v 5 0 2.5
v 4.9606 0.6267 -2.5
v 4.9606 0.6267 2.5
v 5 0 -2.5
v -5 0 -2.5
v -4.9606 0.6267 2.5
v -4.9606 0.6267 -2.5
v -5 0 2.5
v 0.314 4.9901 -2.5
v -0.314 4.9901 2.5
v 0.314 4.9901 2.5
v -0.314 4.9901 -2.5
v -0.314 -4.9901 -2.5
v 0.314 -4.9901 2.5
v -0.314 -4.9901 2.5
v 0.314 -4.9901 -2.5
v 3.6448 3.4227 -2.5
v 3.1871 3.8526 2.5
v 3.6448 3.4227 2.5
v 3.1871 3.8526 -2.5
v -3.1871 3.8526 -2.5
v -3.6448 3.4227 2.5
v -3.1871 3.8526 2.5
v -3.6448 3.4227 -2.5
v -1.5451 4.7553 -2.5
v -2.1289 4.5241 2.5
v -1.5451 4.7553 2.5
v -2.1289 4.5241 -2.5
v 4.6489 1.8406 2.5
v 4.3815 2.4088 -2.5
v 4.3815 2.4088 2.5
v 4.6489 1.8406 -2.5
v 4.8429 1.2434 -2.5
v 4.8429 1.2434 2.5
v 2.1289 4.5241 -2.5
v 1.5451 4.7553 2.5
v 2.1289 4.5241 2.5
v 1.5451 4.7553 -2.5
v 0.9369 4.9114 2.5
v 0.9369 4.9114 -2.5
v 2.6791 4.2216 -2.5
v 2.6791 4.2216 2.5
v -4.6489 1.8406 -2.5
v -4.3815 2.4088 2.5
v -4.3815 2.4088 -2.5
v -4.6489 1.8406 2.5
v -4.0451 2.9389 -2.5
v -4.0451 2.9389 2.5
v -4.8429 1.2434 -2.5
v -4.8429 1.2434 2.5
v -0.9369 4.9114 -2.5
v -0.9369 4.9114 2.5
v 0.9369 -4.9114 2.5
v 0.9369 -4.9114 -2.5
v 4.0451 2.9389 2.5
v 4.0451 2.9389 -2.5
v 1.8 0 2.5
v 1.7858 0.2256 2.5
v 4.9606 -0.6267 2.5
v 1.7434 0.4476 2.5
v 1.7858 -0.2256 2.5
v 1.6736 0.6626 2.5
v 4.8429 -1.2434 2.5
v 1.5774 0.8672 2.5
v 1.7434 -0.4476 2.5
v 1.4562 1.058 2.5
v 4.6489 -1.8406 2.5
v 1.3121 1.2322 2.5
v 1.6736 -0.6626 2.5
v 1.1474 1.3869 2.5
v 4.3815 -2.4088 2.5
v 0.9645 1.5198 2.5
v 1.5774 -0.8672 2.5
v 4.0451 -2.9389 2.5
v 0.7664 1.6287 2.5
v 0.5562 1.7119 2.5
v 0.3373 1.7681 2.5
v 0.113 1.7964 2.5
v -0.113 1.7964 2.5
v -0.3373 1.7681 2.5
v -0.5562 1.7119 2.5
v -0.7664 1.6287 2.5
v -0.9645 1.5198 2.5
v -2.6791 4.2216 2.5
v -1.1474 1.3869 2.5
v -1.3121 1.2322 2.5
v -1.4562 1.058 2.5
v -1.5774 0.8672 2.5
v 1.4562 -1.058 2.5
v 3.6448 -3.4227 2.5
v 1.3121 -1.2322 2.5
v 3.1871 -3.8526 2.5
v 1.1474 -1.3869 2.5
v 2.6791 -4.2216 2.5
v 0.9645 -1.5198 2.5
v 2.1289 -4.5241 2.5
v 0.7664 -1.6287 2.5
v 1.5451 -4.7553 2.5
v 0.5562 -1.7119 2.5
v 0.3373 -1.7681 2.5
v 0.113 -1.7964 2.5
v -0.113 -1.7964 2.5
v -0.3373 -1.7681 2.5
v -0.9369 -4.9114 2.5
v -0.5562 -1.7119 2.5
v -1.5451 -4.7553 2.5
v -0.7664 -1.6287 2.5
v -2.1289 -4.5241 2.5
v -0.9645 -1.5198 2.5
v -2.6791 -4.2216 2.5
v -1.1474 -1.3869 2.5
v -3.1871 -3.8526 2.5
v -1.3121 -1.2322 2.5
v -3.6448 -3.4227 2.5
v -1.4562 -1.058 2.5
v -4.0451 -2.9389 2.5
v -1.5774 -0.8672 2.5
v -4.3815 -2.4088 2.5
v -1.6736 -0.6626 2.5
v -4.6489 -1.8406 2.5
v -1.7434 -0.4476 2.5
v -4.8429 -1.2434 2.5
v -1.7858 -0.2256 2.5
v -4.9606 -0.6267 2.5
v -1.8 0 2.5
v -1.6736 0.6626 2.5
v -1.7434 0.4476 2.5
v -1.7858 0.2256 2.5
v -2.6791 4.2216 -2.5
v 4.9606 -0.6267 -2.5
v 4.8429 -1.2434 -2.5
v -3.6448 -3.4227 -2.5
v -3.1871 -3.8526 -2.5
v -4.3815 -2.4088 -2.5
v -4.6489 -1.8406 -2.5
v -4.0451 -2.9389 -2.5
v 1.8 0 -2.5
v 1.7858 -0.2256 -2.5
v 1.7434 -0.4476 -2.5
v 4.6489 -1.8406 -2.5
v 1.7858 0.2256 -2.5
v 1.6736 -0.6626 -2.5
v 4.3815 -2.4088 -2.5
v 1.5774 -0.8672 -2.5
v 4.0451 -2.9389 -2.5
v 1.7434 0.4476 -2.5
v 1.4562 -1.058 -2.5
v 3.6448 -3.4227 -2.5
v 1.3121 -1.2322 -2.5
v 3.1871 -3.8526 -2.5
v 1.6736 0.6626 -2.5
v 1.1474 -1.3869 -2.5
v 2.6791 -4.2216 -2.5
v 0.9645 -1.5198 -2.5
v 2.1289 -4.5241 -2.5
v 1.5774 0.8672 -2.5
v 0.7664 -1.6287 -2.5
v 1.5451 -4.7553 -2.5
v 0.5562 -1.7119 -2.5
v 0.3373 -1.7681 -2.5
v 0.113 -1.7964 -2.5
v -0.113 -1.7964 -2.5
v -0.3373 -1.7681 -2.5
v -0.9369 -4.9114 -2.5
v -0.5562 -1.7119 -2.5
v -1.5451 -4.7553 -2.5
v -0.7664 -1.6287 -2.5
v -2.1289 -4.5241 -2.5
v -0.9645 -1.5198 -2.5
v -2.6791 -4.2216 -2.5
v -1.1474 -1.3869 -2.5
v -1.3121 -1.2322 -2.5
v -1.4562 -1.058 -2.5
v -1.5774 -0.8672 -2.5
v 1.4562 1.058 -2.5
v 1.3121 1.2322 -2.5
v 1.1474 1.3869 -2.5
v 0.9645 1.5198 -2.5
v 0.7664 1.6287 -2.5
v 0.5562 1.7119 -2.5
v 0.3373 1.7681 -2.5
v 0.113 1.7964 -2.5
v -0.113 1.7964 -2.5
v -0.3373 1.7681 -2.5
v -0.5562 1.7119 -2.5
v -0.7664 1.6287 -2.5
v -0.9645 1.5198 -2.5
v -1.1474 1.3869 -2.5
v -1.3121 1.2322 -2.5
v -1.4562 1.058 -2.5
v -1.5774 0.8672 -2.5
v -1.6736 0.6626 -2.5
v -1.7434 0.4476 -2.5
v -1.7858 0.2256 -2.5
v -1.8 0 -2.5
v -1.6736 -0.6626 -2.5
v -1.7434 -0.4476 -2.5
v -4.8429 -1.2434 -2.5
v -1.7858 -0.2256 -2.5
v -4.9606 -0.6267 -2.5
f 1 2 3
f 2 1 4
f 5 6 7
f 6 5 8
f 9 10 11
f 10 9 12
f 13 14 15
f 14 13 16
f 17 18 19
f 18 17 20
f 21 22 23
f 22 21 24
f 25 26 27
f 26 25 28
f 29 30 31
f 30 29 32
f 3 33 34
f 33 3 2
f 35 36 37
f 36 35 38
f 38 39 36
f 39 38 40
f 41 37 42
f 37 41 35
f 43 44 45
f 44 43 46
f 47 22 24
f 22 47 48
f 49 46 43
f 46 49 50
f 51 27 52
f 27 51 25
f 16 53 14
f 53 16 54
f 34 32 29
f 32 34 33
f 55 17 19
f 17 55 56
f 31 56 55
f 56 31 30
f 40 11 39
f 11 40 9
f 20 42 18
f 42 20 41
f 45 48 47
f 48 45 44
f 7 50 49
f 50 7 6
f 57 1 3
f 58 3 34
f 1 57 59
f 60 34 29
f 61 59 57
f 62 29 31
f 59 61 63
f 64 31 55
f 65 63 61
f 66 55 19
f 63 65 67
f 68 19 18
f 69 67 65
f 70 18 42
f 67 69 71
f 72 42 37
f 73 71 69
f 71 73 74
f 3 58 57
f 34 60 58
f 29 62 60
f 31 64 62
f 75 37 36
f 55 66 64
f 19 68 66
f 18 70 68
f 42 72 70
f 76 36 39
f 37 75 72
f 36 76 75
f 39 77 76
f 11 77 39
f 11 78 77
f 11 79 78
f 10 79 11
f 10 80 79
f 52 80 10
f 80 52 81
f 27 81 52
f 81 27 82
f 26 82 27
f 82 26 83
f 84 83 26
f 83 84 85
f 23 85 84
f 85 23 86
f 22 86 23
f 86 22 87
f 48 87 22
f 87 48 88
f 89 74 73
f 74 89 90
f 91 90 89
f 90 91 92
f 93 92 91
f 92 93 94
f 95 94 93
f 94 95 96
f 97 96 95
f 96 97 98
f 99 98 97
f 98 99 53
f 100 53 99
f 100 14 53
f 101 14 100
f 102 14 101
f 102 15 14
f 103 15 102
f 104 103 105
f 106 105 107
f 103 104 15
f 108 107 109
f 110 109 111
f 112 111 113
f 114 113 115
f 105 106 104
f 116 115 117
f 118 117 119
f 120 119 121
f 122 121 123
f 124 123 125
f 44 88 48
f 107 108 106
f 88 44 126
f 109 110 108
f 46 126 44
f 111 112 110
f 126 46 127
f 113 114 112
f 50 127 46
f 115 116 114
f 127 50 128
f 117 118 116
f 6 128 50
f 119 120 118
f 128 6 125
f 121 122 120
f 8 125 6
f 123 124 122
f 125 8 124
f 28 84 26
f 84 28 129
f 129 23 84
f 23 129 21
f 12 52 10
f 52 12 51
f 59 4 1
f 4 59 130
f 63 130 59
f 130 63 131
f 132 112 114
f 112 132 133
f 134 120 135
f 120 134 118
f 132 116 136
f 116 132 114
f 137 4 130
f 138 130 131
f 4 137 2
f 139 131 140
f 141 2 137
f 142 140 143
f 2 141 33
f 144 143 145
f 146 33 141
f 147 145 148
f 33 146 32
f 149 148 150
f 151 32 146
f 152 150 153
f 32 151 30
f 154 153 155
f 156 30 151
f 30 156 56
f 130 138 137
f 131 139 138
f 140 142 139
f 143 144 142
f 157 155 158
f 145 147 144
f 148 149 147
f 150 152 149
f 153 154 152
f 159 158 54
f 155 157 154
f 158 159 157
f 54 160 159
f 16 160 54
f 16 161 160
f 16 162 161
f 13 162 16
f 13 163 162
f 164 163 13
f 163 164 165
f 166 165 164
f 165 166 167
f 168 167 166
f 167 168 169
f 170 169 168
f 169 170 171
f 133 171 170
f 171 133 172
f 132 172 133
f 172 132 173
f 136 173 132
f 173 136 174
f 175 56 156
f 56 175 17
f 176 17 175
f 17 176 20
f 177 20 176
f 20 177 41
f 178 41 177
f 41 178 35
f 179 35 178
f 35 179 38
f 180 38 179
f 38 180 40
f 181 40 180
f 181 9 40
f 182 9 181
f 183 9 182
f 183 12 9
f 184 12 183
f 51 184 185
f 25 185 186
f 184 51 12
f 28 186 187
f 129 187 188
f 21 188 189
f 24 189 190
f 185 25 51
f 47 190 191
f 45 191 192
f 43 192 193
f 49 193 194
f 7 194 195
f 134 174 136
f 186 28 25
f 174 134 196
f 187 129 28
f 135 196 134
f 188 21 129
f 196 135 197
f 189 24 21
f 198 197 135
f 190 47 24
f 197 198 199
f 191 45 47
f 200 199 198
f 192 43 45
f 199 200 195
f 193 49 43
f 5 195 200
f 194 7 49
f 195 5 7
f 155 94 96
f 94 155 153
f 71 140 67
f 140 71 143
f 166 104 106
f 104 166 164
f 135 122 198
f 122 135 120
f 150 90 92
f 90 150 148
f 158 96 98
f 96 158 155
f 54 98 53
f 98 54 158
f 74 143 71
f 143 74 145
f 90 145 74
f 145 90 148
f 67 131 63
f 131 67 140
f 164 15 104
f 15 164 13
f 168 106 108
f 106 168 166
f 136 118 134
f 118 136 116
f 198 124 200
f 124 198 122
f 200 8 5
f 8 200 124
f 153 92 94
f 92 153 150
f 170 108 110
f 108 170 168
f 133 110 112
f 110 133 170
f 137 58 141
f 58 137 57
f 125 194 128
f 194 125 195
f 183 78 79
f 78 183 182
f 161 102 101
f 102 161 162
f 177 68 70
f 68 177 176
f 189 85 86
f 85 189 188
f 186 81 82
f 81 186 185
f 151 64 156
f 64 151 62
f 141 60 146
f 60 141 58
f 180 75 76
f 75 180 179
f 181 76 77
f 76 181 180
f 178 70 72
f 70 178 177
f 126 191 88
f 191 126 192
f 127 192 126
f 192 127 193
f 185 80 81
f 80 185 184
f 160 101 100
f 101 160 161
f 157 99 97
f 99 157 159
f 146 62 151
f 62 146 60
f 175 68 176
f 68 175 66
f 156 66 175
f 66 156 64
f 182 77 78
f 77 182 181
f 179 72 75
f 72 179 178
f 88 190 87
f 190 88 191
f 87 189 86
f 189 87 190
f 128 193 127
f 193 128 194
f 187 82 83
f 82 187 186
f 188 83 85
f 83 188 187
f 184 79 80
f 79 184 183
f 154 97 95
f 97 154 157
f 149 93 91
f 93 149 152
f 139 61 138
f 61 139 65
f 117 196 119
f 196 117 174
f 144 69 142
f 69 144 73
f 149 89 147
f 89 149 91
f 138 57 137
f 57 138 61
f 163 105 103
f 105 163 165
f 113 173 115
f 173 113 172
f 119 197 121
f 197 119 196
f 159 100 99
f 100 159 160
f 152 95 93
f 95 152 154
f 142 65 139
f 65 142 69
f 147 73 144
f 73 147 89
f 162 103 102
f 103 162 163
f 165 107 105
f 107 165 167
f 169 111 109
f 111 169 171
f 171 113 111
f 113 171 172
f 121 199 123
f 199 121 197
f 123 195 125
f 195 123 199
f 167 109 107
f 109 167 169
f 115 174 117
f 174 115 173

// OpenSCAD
$fn = 50;


difference() {
	union() {
		translate(v = [0, 0, -2.5000000000]) {
			cylinder(h = 5, r = 5.0000000000);
		}
	}
	union() {
		translate(v = [0, 0, -100.0000000000]) {
			cylinder(h = 200, r = 1.8000000000);
		}
	}
}
